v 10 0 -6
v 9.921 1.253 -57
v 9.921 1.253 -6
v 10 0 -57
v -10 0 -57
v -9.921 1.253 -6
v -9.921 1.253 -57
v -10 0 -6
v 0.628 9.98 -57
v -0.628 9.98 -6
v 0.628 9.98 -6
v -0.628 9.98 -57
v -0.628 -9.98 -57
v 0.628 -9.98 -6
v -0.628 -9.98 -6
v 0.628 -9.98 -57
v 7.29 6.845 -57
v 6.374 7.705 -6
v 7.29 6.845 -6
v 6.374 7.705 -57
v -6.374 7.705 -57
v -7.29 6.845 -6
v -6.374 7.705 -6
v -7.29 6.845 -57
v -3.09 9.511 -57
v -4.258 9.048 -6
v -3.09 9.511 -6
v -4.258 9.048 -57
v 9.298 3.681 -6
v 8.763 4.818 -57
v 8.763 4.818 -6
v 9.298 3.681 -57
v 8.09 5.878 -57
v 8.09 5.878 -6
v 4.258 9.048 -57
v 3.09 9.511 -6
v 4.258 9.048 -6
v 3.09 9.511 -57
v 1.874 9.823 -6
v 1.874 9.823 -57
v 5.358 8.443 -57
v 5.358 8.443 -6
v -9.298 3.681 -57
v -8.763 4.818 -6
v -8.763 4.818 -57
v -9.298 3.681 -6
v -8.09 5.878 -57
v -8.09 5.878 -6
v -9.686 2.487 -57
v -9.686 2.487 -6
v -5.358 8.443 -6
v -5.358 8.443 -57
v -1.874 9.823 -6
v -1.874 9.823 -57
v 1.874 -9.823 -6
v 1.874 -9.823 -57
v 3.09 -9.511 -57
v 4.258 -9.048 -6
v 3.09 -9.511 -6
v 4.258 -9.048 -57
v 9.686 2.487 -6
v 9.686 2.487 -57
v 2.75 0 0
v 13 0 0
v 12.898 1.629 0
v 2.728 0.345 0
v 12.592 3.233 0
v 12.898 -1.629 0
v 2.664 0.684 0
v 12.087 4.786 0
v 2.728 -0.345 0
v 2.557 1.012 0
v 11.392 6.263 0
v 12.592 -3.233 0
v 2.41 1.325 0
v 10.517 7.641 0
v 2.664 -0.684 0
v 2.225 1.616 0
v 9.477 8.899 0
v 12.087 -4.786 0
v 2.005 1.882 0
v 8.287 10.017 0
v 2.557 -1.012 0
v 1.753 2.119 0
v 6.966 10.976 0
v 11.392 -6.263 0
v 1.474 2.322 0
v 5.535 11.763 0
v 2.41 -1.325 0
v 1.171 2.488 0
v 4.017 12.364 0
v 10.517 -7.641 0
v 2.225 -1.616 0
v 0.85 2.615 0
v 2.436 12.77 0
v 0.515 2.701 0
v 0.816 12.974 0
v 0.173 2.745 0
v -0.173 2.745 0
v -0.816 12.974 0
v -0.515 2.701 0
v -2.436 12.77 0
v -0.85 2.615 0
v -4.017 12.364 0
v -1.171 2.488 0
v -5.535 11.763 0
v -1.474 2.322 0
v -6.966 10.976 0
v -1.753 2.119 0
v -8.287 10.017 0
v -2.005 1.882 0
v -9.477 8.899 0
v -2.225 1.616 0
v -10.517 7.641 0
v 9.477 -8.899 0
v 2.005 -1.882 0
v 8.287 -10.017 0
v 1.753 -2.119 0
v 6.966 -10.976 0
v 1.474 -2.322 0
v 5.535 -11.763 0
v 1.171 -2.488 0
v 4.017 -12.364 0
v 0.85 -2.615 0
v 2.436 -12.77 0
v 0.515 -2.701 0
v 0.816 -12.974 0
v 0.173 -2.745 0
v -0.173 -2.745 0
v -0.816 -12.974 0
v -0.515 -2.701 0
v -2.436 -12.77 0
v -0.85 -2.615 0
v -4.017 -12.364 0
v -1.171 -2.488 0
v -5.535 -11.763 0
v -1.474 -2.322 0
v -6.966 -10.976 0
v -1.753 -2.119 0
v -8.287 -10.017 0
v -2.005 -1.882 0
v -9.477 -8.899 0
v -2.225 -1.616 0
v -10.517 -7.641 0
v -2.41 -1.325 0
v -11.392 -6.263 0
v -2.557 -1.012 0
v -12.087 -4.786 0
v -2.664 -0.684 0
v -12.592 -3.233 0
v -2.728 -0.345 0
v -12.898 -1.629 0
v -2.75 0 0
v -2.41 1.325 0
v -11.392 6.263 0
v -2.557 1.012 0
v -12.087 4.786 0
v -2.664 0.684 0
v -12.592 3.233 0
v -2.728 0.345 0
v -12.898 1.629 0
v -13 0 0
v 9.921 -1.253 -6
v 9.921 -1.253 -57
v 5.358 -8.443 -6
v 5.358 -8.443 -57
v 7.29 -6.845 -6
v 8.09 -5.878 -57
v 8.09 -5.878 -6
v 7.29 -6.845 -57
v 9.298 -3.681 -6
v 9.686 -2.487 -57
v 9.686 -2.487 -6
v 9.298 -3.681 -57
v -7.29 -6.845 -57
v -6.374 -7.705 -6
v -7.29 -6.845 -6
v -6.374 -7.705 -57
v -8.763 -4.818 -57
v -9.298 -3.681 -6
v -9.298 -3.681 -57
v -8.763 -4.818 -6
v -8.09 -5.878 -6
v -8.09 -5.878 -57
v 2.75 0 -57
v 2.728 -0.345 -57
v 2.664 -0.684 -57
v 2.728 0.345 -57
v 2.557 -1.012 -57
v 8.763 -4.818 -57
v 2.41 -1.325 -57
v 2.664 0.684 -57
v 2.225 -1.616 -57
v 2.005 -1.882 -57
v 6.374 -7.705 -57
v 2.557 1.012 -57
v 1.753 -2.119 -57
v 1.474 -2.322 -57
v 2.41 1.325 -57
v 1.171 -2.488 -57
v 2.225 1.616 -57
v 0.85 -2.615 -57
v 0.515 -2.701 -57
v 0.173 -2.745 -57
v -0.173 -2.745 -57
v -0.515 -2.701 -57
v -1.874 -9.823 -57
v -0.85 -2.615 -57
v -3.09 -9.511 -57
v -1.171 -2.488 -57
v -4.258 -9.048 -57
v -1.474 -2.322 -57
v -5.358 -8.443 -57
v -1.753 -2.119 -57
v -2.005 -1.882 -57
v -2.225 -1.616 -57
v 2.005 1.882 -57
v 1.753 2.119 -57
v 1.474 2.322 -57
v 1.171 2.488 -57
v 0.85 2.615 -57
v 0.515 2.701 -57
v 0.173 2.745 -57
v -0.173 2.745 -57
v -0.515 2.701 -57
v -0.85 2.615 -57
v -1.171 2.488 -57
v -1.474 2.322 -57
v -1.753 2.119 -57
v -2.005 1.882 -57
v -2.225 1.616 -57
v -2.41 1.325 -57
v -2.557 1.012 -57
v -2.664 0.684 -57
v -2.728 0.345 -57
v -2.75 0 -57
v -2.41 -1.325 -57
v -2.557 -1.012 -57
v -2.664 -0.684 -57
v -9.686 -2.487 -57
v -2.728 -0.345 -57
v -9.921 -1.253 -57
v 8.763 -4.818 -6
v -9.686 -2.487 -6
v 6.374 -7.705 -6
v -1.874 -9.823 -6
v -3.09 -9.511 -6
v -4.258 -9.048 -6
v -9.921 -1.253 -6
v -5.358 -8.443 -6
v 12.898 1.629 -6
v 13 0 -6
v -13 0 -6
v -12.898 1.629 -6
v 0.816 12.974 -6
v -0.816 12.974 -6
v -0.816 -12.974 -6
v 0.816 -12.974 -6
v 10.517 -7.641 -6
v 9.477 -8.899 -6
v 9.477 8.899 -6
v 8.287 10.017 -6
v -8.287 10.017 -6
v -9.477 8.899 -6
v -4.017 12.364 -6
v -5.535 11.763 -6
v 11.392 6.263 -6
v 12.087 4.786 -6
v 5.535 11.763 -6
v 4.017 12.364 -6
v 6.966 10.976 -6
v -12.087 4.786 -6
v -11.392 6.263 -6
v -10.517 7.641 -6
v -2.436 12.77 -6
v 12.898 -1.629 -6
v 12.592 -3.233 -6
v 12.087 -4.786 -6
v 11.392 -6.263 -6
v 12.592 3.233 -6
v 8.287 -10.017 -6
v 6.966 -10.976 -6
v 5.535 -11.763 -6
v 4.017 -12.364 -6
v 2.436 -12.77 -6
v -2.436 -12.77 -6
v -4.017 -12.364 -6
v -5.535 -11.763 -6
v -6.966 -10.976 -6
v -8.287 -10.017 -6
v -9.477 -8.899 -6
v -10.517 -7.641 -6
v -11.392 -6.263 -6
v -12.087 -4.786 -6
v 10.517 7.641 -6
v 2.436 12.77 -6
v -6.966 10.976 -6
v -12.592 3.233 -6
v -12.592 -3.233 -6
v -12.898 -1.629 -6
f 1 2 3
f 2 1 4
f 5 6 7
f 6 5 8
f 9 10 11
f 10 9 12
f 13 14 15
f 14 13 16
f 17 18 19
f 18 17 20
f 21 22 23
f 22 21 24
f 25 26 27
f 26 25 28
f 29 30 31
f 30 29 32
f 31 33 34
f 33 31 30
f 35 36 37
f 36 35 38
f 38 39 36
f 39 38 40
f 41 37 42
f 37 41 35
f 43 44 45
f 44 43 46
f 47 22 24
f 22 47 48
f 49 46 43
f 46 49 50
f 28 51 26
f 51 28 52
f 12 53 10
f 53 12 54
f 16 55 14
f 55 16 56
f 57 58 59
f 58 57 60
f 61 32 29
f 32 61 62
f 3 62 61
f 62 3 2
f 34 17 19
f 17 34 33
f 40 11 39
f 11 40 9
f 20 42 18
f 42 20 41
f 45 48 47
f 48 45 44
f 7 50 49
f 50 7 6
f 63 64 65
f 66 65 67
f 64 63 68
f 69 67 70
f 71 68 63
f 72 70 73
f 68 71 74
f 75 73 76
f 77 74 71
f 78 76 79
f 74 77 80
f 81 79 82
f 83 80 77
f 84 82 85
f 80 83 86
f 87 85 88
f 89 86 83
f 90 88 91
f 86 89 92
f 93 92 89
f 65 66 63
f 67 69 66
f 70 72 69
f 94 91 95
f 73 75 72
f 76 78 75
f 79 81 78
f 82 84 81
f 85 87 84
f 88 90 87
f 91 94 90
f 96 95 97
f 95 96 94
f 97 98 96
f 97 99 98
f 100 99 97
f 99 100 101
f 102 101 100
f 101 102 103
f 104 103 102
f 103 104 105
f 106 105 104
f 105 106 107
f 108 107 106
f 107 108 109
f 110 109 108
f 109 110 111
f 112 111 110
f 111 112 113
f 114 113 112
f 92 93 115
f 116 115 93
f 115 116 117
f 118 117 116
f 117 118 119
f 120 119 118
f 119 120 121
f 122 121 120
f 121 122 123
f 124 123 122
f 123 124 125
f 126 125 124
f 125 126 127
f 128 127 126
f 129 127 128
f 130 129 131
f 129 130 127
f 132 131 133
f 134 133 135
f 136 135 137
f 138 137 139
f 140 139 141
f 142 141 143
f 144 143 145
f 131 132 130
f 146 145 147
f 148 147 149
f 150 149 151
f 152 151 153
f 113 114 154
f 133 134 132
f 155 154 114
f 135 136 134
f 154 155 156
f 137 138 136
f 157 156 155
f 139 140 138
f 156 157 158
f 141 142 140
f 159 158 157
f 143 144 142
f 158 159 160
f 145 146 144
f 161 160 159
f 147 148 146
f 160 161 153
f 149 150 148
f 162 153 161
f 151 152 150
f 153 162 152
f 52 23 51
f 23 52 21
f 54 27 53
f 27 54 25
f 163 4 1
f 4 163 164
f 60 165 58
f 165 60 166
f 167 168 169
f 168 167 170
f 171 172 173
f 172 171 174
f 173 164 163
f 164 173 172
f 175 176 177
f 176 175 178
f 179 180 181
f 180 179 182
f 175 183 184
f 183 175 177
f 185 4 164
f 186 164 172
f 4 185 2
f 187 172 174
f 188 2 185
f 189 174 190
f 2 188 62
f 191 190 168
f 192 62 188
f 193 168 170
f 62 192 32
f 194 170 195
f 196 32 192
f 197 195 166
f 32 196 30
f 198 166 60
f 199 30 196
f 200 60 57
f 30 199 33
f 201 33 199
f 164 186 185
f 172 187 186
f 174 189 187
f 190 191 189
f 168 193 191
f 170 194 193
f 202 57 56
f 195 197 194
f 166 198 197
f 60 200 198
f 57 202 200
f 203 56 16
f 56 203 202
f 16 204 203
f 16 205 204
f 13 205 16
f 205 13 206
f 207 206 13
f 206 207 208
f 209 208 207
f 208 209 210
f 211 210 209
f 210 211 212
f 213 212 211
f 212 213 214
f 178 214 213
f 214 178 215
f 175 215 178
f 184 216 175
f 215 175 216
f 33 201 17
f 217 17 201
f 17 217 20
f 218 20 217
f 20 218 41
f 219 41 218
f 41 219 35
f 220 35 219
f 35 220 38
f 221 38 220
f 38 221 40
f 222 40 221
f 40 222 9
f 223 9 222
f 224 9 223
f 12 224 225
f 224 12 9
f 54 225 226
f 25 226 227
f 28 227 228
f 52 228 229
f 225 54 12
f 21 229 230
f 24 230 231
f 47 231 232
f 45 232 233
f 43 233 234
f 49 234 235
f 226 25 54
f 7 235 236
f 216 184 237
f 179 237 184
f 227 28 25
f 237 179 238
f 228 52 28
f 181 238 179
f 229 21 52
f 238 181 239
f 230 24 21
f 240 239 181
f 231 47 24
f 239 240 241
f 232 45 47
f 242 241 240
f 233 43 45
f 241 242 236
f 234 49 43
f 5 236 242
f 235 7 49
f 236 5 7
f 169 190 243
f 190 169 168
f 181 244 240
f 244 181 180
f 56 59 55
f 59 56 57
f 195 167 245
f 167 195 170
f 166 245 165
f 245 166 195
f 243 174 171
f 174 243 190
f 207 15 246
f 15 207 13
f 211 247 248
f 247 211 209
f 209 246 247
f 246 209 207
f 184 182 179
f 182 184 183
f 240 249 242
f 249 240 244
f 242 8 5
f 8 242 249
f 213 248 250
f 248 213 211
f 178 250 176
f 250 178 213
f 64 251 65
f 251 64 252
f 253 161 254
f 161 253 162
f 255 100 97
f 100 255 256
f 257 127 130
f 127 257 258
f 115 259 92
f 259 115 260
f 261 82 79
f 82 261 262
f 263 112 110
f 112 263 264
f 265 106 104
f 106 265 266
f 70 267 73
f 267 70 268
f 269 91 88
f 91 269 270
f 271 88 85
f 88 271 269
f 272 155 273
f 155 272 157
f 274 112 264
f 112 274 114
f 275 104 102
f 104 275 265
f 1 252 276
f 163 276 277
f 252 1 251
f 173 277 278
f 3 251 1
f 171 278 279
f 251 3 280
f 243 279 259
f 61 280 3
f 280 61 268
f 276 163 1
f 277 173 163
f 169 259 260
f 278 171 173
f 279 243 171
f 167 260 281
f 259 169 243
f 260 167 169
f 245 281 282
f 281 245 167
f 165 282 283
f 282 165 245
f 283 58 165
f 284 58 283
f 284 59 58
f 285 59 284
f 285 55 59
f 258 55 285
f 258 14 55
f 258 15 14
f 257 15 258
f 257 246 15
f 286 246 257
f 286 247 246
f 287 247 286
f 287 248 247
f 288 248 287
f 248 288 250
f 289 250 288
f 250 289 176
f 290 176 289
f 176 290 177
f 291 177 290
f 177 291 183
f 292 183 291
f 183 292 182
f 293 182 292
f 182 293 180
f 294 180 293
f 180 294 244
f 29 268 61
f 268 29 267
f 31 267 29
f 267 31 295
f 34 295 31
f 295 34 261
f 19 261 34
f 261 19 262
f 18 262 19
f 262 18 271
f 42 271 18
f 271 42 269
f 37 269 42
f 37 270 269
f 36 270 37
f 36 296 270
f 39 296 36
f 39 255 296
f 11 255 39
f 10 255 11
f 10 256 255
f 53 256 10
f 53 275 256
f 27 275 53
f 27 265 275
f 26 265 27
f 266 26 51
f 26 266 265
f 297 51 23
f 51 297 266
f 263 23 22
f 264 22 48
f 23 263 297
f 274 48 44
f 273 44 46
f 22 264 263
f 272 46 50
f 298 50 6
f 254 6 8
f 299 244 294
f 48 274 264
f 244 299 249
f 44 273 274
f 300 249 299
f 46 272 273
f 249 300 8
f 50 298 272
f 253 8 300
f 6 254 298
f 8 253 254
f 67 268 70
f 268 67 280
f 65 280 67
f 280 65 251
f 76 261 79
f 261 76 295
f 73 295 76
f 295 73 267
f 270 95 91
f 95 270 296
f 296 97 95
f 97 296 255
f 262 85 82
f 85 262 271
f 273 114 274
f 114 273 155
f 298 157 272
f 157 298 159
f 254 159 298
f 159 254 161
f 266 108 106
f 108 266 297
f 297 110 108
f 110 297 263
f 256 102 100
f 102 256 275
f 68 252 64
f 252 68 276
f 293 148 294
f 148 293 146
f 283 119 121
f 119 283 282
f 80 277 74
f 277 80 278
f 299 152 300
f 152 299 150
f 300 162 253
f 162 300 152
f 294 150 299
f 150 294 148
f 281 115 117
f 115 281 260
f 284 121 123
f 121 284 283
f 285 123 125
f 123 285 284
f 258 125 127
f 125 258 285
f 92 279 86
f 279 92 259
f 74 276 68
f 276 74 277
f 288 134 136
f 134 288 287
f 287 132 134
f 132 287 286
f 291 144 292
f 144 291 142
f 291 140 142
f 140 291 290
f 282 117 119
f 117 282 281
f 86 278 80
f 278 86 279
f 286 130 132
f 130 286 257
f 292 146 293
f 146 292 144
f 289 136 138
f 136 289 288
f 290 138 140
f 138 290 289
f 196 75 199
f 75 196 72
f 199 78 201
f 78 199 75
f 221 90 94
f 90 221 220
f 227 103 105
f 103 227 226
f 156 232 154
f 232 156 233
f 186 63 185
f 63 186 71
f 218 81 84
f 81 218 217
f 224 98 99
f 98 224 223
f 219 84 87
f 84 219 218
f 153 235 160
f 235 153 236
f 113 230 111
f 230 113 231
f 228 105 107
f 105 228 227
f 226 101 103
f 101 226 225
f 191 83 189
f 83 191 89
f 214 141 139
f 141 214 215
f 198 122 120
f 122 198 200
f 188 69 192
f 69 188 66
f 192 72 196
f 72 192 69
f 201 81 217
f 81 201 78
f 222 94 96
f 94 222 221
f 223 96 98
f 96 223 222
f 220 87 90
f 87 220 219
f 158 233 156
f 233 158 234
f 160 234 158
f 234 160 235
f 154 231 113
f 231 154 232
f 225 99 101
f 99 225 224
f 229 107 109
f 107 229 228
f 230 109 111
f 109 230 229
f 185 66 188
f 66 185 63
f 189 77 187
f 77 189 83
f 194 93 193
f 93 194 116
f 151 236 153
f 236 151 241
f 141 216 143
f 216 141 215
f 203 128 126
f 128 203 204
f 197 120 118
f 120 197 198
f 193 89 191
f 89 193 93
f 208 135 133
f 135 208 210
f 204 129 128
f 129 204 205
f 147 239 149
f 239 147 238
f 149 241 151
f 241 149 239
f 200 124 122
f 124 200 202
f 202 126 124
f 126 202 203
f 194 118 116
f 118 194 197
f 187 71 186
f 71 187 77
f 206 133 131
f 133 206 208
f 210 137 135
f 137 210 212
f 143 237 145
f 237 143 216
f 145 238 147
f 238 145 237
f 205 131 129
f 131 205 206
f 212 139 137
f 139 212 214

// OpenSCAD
$fn = 50;


difference() {
	union() {
		translate(v = [0, 0, -57.0000000000]) {
			cylinder(h = 57, r = 10.0000000000);
		}
		translate(v = [0, 0, -6.0000000000]) {
			cylinder(h = 6, r = 13.0000000000);
		}
	}
	union() {
		#translate(v = [0, 0, -57]) {
			cylinder(h = 57, r = 2.7500000000);
		}
	}
}
